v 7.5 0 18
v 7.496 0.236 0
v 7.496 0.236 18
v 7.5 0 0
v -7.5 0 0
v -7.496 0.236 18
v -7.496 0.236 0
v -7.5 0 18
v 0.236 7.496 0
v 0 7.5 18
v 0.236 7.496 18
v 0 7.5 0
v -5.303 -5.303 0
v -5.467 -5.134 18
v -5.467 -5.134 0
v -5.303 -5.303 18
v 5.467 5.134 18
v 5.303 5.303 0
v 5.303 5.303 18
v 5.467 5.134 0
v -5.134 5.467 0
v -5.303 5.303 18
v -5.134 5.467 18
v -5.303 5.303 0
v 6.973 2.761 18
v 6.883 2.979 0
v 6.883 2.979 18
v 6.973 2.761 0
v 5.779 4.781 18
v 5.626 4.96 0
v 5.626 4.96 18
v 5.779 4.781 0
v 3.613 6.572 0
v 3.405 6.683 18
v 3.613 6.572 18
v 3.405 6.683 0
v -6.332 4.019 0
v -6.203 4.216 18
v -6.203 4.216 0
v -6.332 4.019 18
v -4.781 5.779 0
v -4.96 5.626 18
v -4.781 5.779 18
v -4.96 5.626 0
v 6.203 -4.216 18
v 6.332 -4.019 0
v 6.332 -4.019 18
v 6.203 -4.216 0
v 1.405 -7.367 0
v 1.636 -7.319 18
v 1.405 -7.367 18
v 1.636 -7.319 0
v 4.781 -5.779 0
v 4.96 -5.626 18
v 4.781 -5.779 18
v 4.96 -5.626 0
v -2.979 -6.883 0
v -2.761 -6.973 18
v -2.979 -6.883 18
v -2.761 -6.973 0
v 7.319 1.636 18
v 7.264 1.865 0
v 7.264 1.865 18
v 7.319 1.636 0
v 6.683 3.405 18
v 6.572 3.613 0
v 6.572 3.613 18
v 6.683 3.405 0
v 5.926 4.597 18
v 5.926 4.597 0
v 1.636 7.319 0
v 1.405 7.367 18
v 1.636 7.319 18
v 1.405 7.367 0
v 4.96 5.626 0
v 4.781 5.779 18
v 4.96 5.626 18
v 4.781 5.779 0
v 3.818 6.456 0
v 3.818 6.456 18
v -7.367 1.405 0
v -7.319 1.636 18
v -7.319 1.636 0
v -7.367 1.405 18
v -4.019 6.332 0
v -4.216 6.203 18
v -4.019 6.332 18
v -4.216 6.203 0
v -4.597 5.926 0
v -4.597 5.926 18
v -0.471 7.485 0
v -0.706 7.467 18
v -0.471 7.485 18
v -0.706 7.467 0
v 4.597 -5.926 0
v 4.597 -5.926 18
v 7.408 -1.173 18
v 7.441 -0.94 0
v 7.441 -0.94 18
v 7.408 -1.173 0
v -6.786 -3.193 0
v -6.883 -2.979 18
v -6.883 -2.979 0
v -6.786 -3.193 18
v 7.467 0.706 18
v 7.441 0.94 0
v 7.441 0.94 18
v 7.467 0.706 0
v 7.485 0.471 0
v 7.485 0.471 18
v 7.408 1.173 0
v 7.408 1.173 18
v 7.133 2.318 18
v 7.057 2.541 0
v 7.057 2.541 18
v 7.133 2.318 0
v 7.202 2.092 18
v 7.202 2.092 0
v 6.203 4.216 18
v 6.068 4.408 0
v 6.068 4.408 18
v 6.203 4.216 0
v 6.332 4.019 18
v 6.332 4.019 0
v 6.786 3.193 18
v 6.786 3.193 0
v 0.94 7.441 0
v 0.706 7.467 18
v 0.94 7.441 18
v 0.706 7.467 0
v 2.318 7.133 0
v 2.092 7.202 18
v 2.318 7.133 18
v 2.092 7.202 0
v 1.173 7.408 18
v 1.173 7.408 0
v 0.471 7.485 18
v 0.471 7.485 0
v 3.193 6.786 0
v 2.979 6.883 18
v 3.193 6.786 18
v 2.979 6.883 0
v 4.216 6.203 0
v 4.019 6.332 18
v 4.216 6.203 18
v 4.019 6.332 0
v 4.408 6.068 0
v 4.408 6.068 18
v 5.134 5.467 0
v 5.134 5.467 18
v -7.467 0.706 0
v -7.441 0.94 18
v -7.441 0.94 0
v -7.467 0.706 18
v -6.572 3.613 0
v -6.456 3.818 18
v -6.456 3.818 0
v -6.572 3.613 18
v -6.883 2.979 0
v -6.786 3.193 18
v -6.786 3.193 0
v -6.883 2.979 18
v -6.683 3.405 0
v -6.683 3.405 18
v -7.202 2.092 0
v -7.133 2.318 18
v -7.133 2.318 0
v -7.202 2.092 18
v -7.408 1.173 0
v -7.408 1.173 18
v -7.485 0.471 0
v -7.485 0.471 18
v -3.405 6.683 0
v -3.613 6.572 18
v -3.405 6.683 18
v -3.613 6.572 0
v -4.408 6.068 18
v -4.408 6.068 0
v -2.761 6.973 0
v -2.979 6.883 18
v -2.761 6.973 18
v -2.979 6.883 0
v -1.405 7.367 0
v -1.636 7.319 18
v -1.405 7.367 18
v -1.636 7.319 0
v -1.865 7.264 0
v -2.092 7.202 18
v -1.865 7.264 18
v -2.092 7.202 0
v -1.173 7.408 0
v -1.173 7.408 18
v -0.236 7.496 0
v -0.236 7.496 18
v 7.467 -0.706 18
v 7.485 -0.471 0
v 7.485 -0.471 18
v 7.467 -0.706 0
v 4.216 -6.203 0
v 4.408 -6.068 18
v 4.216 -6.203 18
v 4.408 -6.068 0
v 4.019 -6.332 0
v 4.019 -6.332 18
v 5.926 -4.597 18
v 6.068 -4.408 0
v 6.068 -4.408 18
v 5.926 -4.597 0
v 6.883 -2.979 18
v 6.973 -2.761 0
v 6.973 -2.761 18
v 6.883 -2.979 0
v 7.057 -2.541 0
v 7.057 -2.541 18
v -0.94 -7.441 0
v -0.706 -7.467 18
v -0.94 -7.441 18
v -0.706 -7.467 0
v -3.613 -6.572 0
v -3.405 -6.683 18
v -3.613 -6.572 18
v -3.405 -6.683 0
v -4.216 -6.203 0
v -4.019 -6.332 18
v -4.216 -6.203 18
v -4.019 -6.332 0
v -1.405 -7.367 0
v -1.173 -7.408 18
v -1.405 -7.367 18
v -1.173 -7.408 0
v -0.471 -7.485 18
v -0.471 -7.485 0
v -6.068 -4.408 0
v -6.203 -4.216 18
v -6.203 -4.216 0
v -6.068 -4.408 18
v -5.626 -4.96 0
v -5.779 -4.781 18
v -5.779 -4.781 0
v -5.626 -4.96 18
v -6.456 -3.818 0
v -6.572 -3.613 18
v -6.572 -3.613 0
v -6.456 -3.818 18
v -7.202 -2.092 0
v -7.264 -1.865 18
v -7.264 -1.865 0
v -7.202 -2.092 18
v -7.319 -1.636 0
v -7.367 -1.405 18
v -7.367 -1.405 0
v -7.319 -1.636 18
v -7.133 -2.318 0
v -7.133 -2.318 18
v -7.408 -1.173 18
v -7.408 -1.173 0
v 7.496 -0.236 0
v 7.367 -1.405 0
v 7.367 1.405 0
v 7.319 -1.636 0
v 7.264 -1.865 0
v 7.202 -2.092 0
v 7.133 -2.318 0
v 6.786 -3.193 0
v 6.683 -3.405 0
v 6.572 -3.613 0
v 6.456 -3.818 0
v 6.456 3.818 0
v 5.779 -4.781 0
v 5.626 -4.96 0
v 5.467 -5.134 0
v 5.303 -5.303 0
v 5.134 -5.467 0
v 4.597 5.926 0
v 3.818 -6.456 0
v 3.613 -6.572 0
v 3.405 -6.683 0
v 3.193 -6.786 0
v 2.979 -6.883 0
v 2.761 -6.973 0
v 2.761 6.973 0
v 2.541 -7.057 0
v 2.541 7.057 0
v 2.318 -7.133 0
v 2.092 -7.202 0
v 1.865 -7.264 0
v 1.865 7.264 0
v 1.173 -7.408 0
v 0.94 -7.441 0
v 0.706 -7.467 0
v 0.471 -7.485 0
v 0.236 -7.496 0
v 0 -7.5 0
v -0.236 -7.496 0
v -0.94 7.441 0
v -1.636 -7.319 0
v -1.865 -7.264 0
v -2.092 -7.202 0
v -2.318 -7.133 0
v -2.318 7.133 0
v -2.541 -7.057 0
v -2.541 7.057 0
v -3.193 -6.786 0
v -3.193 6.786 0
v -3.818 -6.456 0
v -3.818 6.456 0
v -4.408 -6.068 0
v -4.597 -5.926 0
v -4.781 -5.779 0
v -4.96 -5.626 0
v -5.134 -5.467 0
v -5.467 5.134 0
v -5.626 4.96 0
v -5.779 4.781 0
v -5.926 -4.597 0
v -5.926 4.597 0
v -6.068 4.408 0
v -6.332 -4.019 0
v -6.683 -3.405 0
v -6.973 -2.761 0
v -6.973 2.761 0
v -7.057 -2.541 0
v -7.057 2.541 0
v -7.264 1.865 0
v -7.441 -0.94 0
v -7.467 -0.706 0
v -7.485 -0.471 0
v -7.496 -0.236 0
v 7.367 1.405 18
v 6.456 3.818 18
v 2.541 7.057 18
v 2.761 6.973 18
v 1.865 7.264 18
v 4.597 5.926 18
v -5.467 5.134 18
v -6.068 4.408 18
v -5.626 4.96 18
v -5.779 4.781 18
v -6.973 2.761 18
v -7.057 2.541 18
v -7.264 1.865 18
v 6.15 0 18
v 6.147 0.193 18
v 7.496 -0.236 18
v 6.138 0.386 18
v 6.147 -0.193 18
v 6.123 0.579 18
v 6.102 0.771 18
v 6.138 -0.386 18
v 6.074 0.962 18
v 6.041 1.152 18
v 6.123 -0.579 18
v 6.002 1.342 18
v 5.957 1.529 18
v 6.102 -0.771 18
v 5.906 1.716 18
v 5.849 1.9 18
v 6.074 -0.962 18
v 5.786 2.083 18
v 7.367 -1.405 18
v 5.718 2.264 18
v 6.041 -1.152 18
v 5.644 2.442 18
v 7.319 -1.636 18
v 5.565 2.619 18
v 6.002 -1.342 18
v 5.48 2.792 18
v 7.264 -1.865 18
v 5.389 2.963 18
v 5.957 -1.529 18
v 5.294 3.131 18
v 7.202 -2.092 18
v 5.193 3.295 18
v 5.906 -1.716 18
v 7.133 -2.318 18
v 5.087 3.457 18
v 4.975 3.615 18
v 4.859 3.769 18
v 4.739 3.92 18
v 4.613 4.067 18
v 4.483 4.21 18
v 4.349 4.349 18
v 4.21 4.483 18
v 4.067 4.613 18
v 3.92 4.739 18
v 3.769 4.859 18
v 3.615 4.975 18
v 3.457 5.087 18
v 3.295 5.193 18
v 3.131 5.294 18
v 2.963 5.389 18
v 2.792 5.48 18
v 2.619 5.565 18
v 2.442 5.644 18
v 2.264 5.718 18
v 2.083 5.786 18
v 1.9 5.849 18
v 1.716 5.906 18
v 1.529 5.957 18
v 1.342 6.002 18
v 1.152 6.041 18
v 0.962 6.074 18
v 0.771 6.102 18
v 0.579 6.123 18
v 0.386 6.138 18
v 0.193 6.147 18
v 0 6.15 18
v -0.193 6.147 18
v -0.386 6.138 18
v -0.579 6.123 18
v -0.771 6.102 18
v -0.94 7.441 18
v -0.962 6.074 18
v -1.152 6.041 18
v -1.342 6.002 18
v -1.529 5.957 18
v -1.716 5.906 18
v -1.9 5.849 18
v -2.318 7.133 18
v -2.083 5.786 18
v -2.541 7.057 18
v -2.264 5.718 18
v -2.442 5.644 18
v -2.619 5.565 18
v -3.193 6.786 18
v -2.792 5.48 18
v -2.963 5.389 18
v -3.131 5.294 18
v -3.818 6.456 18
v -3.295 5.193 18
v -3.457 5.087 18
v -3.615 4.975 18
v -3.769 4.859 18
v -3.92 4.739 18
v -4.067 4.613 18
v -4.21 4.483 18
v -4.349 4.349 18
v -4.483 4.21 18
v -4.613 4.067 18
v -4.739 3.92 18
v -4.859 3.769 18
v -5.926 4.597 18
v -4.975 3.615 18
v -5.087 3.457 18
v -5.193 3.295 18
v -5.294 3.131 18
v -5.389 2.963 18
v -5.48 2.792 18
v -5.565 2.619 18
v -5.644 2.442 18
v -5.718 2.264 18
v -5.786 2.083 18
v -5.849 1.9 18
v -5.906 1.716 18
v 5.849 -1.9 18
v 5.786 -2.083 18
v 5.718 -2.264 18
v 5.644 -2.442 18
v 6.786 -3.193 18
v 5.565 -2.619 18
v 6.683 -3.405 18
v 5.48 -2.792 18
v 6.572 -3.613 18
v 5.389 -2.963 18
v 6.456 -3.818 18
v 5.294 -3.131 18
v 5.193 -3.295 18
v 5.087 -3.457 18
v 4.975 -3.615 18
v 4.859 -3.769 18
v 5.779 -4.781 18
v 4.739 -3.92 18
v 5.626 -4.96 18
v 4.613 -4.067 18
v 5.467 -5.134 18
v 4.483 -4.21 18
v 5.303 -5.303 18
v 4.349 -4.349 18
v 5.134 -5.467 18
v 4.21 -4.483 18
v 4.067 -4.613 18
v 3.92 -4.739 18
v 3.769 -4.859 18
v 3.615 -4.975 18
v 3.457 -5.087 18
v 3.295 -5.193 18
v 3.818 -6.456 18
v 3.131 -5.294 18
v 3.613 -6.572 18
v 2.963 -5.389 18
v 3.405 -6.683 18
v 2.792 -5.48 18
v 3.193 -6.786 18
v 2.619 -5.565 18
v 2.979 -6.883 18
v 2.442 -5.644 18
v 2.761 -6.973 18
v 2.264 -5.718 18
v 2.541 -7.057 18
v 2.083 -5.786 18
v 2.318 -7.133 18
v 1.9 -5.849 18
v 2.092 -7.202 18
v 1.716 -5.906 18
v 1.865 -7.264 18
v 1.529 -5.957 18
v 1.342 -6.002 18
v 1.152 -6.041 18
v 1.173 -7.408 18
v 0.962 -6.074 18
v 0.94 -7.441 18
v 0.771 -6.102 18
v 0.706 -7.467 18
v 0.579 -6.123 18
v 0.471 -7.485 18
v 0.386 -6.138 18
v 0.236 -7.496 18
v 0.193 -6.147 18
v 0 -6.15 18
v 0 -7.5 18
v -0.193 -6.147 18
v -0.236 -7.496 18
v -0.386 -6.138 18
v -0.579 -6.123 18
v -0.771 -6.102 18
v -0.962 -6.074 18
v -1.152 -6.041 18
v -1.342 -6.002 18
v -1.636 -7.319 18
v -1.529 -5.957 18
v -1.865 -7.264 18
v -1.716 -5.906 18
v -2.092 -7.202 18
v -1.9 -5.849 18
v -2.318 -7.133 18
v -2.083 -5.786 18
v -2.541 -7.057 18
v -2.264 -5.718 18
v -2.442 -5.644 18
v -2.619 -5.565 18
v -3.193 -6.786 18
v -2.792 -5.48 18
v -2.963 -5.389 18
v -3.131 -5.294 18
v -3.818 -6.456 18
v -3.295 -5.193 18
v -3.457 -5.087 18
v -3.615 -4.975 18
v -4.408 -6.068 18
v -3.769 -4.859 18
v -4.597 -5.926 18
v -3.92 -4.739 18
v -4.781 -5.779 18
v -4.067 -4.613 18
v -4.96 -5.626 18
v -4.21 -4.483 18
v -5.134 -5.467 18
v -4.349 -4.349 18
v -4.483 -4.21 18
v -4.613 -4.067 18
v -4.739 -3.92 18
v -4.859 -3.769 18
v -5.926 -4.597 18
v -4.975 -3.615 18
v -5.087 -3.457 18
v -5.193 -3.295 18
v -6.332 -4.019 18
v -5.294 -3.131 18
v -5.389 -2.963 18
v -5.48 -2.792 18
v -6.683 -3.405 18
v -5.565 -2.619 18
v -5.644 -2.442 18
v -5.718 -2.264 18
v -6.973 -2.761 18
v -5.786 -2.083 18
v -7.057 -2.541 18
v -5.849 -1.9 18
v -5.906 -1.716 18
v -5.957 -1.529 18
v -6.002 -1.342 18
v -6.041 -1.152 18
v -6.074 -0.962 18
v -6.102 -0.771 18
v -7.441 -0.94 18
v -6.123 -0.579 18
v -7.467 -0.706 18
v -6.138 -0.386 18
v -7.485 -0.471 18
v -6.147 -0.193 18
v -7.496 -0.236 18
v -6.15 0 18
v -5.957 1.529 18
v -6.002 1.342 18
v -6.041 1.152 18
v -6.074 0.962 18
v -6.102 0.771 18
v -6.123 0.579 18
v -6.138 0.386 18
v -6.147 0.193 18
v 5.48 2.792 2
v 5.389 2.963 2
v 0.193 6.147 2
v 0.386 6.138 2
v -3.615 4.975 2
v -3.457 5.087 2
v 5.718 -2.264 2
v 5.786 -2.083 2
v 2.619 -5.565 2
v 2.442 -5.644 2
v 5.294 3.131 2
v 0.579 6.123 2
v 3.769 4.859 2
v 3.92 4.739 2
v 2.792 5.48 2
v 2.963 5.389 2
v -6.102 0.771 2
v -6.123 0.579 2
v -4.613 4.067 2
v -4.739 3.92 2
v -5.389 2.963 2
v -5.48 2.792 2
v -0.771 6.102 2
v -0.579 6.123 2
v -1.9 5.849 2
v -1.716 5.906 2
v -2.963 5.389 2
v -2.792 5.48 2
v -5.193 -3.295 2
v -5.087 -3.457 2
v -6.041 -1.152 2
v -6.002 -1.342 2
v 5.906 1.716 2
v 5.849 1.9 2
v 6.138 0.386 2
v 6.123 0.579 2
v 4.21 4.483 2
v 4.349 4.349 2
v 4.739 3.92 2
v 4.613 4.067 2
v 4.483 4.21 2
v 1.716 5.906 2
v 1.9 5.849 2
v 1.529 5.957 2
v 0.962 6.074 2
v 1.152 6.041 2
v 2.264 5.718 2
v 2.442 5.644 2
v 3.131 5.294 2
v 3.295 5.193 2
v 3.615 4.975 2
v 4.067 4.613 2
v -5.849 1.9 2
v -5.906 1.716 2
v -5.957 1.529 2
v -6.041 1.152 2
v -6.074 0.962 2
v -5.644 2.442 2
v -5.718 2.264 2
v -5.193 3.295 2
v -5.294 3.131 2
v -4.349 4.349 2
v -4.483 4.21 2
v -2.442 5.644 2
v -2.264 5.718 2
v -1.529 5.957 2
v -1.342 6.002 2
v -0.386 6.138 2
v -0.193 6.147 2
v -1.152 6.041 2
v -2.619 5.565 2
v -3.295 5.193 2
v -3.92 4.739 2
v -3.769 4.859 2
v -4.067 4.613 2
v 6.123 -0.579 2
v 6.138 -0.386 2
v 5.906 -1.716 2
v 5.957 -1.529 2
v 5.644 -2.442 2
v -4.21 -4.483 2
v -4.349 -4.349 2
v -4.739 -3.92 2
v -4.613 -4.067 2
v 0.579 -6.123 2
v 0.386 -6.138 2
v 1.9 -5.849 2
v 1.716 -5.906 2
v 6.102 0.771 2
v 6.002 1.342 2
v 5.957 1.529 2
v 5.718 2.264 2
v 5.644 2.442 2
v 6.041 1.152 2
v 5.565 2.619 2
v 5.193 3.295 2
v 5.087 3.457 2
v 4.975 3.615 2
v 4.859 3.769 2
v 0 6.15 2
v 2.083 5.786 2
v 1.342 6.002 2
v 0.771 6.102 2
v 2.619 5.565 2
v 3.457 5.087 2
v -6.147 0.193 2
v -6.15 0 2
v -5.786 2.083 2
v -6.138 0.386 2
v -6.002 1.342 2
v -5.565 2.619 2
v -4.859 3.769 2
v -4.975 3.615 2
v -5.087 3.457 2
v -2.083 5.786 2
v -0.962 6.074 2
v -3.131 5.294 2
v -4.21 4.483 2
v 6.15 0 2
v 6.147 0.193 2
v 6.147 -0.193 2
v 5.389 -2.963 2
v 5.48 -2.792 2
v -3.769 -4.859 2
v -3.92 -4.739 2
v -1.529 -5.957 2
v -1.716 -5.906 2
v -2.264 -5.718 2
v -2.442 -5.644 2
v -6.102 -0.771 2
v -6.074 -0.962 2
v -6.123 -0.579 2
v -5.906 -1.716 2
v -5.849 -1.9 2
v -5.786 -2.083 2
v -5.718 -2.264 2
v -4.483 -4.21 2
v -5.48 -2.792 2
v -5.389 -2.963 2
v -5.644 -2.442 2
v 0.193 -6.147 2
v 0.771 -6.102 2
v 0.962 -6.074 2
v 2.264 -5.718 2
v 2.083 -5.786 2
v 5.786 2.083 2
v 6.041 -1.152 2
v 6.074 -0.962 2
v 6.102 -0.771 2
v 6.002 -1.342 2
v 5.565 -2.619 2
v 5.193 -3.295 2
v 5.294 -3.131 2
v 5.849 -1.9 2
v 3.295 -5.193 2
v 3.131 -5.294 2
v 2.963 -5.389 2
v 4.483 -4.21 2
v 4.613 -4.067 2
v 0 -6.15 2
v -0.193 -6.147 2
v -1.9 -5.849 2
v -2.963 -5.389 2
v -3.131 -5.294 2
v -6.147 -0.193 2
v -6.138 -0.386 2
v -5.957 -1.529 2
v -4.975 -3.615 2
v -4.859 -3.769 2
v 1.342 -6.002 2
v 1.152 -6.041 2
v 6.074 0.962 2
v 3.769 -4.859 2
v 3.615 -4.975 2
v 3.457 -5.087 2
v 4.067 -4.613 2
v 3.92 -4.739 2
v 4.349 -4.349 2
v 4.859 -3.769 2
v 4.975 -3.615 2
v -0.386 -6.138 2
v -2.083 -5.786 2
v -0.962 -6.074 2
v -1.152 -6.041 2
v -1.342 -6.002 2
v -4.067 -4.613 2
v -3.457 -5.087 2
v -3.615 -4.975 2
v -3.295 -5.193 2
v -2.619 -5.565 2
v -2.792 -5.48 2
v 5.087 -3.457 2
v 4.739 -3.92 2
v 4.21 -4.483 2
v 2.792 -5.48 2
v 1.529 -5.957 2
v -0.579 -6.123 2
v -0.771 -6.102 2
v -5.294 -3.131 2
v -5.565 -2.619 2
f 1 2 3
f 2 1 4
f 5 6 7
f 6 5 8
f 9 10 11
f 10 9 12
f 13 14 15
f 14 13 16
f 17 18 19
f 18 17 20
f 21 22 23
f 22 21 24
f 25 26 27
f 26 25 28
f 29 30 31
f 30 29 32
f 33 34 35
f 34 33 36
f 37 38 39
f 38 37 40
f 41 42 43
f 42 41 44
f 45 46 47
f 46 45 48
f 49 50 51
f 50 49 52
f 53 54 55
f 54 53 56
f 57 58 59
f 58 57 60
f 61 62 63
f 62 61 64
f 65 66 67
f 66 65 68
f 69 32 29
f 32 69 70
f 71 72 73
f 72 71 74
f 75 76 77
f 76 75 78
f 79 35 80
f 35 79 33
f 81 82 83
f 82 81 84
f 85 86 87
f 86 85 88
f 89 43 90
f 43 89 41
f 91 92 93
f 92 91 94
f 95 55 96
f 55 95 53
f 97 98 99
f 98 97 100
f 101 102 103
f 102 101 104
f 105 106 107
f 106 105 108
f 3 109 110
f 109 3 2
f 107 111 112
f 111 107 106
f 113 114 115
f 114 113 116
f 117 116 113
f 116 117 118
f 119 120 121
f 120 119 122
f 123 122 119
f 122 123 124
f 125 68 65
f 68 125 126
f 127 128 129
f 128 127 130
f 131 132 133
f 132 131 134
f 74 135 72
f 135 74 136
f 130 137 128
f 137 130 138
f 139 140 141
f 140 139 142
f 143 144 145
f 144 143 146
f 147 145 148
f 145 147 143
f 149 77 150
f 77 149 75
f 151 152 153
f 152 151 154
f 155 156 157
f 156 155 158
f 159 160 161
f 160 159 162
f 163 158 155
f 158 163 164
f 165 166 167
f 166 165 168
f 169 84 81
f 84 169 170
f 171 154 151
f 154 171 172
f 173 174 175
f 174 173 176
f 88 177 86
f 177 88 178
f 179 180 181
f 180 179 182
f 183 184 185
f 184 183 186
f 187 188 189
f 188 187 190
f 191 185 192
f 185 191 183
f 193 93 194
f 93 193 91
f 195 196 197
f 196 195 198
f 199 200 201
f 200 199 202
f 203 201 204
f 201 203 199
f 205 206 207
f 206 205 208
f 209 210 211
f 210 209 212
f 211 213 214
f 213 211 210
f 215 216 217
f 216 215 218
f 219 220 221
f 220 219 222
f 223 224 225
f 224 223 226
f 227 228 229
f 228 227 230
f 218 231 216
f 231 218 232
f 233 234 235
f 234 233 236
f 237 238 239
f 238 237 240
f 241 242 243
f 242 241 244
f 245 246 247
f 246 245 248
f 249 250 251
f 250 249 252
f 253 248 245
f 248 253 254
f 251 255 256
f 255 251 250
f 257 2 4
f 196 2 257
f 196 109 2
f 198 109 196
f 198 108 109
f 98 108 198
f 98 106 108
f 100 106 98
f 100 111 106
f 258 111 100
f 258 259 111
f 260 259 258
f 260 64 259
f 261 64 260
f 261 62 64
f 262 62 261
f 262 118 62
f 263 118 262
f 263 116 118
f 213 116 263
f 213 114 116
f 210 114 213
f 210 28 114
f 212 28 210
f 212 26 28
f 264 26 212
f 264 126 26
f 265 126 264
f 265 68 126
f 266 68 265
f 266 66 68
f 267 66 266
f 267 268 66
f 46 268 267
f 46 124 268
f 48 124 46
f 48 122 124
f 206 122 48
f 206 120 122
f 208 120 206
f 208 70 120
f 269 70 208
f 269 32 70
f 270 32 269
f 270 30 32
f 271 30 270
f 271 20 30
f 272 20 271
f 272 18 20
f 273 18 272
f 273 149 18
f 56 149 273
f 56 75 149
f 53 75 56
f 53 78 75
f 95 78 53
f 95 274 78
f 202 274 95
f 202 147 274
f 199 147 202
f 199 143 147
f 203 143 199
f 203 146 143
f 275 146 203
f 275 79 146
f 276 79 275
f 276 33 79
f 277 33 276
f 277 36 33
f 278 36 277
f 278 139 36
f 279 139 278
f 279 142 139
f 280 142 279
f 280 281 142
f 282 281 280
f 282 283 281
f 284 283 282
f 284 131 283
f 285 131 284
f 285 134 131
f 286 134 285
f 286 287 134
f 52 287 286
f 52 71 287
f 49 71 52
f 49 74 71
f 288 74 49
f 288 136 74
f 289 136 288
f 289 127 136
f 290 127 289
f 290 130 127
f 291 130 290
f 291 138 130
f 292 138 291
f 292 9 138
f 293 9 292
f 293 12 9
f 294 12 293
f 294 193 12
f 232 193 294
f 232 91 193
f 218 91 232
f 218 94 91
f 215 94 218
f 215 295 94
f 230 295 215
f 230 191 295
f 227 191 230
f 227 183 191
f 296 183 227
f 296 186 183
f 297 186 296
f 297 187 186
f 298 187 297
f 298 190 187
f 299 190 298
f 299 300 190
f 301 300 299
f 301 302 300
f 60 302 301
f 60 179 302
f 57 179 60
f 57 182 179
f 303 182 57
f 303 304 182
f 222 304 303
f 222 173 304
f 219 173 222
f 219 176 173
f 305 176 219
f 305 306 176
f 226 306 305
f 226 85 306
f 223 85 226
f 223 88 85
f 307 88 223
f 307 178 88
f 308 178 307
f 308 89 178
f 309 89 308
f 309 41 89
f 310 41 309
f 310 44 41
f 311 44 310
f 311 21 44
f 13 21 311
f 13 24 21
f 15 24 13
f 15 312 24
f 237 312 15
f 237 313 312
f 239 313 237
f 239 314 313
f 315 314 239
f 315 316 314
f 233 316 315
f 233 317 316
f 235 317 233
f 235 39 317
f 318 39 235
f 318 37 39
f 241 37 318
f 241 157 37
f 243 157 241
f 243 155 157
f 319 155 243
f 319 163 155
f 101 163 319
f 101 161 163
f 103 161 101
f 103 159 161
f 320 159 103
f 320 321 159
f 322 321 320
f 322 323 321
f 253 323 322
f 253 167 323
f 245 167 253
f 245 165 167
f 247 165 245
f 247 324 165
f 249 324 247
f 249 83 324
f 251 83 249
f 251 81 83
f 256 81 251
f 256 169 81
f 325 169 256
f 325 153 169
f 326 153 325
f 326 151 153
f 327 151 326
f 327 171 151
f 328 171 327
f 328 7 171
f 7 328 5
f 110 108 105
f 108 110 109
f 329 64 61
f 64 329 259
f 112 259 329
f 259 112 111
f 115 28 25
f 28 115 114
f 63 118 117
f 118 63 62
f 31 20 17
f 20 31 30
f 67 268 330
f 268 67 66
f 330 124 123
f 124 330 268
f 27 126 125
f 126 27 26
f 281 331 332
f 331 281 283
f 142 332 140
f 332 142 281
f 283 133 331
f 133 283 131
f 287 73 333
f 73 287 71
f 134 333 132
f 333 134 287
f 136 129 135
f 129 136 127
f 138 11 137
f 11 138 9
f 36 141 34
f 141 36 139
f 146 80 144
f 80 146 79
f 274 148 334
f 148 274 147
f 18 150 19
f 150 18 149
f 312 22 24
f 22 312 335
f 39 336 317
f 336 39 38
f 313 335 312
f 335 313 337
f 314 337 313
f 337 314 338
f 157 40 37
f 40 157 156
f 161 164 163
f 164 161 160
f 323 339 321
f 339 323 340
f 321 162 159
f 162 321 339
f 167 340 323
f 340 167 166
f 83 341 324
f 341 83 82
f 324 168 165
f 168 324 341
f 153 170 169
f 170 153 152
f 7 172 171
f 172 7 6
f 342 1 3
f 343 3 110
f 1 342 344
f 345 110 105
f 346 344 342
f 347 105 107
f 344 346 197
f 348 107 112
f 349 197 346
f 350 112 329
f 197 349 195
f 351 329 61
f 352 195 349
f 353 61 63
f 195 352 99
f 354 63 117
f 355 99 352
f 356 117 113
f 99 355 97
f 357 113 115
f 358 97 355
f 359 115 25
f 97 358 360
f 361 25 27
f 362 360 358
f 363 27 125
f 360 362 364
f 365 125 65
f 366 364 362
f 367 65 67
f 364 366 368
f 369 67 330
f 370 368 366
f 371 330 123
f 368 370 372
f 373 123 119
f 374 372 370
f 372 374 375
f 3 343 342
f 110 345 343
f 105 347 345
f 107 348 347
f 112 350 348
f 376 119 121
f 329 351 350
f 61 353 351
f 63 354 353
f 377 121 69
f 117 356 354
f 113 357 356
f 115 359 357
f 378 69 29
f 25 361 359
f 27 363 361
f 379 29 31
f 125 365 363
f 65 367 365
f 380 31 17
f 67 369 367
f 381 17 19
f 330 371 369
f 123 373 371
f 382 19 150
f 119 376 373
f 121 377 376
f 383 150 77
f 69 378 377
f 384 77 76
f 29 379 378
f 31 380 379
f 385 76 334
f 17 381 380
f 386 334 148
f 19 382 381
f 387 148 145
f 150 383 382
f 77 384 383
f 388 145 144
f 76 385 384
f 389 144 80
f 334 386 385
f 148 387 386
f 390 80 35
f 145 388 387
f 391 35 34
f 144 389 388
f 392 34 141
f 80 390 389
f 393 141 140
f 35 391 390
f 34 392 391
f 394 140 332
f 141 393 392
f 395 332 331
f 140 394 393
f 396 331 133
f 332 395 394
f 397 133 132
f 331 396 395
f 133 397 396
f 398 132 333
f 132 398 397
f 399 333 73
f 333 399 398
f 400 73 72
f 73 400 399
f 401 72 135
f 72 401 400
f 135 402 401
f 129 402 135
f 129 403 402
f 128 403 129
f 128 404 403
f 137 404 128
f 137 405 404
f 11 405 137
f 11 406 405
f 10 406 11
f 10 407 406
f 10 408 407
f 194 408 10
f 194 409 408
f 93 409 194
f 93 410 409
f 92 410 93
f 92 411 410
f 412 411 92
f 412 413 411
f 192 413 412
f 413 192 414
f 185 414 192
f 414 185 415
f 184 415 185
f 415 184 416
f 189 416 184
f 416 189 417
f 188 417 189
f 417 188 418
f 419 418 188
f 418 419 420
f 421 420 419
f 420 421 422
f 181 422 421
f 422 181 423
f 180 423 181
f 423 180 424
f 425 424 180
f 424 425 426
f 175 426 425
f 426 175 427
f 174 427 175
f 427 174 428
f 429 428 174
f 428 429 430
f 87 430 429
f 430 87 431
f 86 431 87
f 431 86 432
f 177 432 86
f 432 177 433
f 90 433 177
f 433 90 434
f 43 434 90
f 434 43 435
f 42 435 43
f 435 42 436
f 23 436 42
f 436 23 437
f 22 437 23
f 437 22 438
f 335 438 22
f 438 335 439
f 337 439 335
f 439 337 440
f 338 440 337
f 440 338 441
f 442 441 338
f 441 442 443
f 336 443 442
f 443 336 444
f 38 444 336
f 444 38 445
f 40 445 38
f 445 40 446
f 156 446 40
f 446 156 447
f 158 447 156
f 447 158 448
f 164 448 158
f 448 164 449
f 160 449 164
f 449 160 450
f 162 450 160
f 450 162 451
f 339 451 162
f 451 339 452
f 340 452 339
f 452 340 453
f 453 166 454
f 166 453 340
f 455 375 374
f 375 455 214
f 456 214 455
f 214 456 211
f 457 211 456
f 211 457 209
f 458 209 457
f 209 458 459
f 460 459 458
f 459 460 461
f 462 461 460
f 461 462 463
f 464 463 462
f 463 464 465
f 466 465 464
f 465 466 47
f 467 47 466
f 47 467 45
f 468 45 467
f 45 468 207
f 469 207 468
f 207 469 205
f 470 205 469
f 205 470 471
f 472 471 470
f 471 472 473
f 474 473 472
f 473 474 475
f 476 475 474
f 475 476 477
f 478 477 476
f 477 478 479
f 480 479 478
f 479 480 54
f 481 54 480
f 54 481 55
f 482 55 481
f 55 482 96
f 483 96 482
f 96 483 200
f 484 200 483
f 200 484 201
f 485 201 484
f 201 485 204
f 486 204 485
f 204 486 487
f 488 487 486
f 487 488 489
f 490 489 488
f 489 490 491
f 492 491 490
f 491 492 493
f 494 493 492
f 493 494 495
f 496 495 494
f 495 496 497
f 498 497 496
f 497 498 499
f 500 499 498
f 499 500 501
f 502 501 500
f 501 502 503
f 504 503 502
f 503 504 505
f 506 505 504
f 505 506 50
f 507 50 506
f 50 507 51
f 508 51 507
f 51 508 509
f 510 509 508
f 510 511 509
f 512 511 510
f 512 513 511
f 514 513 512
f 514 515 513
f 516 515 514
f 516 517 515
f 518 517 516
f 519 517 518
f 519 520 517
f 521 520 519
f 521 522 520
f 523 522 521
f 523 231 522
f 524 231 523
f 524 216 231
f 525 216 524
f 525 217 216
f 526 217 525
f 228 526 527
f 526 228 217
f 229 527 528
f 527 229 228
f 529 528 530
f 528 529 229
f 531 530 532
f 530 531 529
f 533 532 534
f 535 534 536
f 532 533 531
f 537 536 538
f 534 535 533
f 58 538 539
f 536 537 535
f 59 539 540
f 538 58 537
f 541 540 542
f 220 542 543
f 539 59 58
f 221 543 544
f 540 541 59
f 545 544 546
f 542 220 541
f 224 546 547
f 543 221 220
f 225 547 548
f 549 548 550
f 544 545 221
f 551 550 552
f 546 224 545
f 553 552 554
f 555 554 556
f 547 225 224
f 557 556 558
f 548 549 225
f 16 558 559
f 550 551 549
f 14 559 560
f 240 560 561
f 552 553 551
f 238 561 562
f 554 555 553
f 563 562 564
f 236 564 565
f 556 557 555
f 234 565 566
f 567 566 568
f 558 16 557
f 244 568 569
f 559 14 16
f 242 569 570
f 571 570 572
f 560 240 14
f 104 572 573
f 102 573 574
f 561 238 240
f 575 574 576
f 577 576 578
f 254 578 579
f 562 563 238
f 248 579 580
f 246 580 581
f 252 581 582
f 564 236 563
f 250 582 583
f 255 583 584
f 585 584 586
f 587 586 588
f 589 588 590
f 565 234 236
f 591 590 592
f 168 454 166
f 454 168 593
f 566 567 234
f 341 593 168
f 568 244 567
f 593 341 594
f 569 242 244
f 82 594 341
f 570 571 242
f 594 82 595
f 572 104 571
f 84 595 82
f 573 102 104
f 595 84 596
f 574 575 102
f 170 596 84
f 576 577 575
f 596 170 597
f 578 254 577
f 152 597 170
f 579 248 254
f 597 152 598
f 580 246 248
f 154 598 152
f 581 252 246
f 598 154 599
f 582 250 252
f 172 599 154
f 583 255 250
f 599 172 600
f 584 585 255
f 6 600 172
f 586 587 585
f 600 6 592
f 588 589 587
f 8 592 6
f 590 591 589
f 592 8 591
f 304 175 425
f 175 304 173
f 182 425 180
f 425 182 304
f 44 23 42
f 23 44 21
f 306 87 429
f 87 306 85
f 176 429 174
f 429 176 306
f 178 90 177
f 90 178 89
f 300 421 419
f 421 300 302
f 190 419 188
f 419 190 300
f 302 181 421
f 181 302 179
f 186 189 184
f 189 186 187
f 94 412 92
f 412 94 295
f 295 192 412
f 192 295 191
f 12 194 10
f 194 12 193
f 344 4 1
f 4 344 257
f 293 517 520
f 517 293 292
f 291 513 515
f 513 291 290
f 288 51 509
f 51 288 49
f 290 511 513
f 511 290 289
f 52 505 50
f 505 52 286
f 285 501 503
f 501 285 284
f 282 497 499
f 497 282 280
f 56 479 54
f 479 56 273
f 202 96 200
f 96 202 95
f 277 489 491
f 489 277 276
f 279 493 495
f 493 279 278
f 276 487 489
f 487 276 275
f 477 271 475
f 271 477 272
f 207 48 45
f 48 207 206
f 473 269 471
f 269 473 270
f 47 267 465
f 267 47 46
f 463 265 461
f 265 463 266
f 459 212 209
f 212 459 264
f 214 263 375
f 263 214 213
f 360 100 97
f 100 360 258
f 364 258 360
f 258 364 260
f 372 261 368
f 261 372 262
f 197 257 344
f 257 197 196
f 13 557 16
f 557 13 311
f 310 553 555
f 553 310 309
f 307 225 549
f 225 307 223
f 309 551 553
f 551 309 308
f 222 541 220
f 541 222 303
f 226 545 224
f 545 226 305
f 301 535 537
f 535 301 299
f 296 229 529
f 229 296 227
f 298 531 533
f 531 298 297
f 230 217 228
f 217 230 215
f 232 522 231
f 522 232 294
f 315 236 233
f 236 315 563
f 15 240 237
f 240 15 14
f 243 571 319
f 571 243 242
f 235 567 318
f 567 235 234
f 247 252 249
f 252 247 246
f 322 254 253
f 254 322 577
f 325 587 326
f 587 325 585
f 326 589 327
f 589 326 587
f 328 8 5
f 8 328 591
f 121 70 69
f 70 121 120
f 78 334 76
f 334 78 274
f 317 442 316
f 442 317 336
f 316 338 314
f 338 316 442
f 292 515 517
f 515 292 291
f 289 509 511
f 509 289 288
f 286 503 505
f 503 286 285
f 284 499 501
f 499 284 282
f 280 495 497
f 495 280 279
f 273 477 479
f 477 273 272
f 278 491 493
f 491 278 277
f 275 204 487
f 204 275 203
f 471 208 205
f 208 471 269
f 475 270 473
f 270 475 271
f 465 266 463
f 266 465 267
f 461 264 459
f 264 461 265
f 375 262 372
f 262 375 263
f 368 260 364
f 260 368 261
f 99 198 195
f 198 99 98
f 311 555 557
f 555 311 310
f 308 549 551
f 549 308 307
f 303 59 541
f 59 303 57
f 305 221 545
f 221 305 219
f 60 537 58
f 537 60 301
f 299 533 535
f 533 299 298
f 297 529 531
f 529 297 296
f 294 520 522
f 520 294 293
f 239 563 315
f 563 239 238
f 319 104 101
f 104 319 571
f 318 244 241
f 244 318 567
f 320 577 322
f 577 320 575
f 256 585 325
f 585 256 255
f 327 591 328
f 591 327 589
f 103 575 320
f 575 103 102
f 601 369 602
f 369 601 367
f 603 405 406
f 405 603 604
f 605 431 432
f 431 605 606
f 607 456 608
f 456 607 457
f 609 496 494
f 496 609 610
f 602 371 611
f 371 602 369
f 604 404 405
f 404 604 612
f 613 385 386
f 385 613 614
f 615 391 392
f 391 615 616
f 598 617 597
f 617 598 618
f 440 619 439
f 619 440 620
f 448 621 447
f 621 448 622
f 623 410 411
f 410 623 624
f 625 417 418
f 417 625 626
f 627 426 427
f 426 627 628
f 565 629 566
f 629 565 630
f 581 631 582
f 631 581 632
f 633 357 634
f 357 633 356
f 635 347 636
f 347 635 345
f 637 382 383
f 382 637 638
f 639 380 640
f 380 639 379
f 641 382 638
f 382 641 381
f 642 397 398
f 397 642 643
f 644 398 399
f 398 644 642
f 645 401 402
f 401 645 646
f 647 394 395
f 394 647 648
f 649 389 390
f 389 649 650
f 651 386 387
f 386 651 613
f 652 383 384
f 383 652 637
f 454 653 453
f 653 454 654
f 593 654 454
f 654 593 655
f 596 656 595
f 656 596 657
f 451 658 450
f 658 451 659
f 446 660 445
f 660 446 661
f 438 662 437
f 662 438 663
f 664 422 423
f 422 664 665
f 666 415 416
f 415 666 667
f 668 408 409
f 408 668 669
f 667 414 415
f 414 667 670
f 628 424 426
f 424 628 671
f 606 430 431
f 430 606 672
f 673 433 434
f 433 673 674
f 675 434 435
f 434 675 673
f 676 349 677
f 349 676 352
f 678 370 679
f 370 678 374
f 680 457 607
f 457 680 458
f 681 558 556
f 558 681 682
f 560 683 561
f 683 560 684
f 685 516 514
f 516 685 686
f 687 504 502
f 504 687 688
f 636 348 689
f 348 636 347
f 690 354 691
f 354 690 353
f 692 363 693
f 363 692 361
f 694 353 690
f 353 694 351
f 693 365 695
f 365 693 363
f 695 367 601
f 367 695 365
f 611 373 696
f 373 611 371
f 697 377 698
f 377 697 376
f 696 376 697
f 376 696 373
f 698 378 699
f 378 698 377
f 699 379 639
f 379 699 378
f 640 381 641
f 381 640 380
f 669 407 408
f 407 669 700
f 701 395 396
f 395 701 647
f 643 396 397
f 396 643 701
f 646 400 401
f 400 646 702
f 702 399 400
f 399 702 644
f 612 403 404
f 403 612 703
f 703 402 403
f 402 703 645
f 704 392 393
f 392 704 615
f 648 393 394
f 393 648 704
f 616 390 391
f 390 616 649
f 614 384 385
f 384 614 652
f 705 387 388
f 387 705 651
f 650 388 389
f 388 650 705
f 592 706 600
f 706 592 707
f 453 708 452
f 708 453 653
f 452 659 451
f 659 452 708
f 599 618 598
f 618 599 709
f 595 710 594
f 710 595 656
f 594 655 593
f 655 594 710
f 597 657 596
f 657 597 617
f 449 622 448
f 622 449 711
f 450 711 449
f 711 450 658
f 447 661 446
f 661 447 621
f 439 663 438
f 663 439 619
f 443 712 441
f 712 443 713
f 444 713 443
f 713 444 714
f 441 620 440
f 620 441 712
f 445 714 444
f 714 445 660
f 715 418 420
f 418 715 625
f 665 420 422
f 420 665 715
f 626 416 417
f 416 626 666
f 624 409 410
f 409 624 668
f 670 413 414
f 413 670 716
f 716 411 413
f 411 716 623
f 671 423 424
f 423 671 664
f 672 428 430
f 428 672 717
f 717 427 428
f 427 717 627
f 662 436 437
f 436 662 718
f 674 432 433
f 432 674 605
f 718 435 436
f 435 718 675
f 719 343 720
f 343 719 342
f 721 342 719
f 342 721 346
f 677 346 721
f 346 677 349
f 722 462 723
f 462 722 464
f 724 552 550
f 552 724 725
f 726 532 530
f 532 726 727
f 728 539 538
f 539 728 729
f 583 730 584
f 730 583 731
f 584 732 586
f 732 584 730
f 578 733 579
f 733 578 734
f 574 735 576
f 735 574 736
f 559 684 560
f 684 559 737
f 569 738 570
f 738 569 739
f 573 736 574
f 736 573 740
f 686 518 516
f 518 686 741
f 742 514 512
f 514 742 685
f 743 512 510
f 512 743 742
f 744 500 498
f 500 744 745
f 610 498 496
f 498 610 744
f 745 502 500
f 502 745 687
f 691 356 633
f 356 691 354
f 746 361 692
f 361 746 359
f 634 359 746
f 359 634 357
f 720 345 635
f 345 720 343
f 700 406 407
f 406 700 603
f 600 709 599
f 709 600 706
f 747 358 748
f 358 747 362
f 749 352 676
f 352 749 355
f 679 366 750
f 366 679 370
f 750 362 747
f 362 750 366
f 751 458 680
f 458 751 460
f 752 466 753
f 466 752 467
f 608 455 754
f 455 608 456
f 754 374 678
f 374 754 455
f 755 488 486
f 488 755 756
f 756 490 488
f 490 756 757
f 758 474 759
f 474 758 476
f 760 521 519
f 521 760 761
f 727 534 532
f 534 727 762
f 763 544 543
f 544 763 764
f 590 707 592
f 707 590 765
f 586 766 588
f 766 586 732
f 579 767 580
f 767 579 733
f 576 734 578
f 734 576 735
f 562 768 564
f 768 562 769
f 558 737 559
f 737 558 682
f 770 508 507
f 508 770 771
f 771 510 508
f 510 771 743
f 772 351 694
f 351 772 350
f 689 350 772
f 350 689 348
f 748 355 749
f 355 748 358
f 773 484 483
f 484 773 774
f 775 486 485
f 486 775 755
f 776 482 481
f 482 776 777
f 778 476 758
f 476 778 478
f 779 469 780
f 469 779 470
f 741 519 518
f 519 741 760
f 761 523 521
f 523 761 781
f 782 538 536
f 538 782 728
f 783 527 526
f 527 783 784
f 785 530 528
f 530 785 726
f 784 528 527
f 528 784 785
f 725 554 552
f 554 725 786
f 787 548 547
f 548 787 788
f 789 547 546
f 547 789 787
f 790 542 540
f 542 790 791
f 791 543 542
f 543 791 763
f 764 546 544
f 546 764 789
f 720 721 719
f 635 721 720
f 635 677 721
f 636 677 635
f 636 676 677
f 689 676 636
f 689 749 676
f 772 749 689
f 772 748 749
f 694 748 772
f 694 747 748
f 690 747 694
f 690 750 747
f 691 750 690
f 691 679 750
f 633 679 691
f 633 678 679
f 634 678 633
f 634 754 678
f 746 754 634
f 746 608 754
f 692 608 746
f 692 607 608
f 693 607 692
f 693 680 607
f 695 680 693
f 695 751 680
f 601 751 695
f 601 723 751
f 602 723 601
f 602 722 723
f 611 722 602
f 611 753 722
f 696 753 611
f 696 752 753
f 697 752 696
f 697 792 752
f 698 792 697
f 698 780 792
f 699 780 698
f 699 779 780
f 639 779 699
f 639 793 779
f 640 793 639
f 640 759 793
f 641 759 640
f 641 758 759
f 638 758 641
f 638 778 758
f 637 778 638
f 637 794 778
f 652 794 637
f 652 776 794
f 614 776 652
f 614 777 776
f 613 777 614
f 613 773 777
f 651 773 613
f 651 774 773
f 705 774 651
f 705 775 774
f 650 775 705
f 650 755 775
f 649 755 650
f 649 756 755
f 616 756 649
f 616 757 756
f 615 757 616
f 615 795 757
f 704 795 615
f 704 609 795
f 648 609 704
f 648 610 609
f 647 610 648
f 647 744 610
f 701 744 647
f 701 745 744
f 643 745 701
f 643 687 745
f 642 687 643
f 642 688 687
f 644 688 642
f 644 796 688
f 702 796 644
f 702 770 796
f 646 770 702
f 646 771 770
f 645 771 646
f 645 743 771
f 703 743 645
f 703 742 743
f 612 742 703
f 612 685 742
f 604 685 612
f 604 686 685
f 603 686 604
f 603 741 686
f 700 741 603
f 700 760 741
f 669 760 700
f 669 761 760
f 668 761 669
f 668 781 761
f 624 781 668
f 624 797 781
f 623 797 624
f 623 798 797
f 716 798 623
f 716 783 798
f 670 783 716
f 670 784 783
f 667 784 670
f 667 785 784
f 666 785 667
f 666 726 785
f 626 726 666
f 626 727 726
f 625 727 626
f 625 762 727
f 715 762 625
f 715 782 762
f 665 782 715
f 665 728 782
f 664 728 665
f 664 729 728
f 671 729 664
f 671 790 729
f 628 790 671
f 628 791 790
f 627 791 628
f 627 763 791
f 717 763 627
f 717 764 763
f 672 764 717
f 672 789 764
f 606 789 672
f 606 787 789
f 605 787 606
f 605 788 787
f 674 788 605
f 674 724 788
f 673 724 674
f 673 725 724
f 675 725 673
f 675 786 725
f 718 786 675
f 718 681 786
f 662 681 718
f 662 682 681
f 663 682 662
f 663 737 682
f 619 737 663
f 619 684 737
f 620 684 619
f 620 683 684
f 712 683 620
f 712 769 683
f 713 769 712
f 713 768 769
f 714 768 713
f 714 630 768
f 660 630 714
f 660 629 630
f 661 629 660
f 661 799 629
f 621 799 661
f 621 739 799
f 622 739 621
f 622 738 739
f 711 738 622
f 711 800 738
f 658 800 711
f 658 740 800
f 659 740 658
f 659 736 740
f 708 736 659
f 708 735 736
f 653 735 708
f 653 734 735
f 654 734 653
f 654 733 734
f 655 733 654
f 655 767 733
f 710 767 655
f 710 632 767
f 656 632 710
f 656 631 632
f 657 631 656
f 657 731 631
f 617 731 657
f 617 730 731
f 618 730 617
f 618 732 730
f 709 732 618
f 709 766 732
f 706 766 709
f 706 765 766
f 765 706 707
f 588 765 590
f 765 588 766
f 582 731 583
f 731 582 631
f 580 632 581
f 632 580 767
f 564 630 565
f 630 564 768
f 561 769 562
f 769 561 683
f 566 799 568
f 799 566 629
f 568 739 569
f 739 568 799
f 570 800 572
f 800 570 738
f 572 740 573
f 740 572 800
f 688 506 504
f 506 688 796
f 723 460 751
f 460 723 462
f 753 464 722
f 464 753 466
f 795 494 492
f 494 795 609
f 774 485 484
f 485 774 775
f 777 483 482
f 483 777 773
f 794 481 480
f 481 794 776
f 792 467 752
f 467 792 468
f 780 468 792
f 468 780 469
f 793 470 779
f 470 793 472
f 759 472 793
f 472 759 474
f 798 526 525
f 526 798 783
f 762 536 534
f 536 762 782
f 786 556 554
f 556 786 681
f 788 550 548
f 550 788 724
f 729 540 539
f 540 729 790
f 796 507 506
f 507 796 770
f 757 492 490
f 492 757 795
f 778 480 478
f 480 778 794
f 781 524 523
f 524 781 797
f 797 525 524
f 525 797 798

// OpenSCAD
difference(){
    cylinder(d=15, h=18, center=false, $fn=200);

    translate([0, 0, 2]){
        cylinder(d=12.3, h=18, center=false, $fn=200);
    }
}
